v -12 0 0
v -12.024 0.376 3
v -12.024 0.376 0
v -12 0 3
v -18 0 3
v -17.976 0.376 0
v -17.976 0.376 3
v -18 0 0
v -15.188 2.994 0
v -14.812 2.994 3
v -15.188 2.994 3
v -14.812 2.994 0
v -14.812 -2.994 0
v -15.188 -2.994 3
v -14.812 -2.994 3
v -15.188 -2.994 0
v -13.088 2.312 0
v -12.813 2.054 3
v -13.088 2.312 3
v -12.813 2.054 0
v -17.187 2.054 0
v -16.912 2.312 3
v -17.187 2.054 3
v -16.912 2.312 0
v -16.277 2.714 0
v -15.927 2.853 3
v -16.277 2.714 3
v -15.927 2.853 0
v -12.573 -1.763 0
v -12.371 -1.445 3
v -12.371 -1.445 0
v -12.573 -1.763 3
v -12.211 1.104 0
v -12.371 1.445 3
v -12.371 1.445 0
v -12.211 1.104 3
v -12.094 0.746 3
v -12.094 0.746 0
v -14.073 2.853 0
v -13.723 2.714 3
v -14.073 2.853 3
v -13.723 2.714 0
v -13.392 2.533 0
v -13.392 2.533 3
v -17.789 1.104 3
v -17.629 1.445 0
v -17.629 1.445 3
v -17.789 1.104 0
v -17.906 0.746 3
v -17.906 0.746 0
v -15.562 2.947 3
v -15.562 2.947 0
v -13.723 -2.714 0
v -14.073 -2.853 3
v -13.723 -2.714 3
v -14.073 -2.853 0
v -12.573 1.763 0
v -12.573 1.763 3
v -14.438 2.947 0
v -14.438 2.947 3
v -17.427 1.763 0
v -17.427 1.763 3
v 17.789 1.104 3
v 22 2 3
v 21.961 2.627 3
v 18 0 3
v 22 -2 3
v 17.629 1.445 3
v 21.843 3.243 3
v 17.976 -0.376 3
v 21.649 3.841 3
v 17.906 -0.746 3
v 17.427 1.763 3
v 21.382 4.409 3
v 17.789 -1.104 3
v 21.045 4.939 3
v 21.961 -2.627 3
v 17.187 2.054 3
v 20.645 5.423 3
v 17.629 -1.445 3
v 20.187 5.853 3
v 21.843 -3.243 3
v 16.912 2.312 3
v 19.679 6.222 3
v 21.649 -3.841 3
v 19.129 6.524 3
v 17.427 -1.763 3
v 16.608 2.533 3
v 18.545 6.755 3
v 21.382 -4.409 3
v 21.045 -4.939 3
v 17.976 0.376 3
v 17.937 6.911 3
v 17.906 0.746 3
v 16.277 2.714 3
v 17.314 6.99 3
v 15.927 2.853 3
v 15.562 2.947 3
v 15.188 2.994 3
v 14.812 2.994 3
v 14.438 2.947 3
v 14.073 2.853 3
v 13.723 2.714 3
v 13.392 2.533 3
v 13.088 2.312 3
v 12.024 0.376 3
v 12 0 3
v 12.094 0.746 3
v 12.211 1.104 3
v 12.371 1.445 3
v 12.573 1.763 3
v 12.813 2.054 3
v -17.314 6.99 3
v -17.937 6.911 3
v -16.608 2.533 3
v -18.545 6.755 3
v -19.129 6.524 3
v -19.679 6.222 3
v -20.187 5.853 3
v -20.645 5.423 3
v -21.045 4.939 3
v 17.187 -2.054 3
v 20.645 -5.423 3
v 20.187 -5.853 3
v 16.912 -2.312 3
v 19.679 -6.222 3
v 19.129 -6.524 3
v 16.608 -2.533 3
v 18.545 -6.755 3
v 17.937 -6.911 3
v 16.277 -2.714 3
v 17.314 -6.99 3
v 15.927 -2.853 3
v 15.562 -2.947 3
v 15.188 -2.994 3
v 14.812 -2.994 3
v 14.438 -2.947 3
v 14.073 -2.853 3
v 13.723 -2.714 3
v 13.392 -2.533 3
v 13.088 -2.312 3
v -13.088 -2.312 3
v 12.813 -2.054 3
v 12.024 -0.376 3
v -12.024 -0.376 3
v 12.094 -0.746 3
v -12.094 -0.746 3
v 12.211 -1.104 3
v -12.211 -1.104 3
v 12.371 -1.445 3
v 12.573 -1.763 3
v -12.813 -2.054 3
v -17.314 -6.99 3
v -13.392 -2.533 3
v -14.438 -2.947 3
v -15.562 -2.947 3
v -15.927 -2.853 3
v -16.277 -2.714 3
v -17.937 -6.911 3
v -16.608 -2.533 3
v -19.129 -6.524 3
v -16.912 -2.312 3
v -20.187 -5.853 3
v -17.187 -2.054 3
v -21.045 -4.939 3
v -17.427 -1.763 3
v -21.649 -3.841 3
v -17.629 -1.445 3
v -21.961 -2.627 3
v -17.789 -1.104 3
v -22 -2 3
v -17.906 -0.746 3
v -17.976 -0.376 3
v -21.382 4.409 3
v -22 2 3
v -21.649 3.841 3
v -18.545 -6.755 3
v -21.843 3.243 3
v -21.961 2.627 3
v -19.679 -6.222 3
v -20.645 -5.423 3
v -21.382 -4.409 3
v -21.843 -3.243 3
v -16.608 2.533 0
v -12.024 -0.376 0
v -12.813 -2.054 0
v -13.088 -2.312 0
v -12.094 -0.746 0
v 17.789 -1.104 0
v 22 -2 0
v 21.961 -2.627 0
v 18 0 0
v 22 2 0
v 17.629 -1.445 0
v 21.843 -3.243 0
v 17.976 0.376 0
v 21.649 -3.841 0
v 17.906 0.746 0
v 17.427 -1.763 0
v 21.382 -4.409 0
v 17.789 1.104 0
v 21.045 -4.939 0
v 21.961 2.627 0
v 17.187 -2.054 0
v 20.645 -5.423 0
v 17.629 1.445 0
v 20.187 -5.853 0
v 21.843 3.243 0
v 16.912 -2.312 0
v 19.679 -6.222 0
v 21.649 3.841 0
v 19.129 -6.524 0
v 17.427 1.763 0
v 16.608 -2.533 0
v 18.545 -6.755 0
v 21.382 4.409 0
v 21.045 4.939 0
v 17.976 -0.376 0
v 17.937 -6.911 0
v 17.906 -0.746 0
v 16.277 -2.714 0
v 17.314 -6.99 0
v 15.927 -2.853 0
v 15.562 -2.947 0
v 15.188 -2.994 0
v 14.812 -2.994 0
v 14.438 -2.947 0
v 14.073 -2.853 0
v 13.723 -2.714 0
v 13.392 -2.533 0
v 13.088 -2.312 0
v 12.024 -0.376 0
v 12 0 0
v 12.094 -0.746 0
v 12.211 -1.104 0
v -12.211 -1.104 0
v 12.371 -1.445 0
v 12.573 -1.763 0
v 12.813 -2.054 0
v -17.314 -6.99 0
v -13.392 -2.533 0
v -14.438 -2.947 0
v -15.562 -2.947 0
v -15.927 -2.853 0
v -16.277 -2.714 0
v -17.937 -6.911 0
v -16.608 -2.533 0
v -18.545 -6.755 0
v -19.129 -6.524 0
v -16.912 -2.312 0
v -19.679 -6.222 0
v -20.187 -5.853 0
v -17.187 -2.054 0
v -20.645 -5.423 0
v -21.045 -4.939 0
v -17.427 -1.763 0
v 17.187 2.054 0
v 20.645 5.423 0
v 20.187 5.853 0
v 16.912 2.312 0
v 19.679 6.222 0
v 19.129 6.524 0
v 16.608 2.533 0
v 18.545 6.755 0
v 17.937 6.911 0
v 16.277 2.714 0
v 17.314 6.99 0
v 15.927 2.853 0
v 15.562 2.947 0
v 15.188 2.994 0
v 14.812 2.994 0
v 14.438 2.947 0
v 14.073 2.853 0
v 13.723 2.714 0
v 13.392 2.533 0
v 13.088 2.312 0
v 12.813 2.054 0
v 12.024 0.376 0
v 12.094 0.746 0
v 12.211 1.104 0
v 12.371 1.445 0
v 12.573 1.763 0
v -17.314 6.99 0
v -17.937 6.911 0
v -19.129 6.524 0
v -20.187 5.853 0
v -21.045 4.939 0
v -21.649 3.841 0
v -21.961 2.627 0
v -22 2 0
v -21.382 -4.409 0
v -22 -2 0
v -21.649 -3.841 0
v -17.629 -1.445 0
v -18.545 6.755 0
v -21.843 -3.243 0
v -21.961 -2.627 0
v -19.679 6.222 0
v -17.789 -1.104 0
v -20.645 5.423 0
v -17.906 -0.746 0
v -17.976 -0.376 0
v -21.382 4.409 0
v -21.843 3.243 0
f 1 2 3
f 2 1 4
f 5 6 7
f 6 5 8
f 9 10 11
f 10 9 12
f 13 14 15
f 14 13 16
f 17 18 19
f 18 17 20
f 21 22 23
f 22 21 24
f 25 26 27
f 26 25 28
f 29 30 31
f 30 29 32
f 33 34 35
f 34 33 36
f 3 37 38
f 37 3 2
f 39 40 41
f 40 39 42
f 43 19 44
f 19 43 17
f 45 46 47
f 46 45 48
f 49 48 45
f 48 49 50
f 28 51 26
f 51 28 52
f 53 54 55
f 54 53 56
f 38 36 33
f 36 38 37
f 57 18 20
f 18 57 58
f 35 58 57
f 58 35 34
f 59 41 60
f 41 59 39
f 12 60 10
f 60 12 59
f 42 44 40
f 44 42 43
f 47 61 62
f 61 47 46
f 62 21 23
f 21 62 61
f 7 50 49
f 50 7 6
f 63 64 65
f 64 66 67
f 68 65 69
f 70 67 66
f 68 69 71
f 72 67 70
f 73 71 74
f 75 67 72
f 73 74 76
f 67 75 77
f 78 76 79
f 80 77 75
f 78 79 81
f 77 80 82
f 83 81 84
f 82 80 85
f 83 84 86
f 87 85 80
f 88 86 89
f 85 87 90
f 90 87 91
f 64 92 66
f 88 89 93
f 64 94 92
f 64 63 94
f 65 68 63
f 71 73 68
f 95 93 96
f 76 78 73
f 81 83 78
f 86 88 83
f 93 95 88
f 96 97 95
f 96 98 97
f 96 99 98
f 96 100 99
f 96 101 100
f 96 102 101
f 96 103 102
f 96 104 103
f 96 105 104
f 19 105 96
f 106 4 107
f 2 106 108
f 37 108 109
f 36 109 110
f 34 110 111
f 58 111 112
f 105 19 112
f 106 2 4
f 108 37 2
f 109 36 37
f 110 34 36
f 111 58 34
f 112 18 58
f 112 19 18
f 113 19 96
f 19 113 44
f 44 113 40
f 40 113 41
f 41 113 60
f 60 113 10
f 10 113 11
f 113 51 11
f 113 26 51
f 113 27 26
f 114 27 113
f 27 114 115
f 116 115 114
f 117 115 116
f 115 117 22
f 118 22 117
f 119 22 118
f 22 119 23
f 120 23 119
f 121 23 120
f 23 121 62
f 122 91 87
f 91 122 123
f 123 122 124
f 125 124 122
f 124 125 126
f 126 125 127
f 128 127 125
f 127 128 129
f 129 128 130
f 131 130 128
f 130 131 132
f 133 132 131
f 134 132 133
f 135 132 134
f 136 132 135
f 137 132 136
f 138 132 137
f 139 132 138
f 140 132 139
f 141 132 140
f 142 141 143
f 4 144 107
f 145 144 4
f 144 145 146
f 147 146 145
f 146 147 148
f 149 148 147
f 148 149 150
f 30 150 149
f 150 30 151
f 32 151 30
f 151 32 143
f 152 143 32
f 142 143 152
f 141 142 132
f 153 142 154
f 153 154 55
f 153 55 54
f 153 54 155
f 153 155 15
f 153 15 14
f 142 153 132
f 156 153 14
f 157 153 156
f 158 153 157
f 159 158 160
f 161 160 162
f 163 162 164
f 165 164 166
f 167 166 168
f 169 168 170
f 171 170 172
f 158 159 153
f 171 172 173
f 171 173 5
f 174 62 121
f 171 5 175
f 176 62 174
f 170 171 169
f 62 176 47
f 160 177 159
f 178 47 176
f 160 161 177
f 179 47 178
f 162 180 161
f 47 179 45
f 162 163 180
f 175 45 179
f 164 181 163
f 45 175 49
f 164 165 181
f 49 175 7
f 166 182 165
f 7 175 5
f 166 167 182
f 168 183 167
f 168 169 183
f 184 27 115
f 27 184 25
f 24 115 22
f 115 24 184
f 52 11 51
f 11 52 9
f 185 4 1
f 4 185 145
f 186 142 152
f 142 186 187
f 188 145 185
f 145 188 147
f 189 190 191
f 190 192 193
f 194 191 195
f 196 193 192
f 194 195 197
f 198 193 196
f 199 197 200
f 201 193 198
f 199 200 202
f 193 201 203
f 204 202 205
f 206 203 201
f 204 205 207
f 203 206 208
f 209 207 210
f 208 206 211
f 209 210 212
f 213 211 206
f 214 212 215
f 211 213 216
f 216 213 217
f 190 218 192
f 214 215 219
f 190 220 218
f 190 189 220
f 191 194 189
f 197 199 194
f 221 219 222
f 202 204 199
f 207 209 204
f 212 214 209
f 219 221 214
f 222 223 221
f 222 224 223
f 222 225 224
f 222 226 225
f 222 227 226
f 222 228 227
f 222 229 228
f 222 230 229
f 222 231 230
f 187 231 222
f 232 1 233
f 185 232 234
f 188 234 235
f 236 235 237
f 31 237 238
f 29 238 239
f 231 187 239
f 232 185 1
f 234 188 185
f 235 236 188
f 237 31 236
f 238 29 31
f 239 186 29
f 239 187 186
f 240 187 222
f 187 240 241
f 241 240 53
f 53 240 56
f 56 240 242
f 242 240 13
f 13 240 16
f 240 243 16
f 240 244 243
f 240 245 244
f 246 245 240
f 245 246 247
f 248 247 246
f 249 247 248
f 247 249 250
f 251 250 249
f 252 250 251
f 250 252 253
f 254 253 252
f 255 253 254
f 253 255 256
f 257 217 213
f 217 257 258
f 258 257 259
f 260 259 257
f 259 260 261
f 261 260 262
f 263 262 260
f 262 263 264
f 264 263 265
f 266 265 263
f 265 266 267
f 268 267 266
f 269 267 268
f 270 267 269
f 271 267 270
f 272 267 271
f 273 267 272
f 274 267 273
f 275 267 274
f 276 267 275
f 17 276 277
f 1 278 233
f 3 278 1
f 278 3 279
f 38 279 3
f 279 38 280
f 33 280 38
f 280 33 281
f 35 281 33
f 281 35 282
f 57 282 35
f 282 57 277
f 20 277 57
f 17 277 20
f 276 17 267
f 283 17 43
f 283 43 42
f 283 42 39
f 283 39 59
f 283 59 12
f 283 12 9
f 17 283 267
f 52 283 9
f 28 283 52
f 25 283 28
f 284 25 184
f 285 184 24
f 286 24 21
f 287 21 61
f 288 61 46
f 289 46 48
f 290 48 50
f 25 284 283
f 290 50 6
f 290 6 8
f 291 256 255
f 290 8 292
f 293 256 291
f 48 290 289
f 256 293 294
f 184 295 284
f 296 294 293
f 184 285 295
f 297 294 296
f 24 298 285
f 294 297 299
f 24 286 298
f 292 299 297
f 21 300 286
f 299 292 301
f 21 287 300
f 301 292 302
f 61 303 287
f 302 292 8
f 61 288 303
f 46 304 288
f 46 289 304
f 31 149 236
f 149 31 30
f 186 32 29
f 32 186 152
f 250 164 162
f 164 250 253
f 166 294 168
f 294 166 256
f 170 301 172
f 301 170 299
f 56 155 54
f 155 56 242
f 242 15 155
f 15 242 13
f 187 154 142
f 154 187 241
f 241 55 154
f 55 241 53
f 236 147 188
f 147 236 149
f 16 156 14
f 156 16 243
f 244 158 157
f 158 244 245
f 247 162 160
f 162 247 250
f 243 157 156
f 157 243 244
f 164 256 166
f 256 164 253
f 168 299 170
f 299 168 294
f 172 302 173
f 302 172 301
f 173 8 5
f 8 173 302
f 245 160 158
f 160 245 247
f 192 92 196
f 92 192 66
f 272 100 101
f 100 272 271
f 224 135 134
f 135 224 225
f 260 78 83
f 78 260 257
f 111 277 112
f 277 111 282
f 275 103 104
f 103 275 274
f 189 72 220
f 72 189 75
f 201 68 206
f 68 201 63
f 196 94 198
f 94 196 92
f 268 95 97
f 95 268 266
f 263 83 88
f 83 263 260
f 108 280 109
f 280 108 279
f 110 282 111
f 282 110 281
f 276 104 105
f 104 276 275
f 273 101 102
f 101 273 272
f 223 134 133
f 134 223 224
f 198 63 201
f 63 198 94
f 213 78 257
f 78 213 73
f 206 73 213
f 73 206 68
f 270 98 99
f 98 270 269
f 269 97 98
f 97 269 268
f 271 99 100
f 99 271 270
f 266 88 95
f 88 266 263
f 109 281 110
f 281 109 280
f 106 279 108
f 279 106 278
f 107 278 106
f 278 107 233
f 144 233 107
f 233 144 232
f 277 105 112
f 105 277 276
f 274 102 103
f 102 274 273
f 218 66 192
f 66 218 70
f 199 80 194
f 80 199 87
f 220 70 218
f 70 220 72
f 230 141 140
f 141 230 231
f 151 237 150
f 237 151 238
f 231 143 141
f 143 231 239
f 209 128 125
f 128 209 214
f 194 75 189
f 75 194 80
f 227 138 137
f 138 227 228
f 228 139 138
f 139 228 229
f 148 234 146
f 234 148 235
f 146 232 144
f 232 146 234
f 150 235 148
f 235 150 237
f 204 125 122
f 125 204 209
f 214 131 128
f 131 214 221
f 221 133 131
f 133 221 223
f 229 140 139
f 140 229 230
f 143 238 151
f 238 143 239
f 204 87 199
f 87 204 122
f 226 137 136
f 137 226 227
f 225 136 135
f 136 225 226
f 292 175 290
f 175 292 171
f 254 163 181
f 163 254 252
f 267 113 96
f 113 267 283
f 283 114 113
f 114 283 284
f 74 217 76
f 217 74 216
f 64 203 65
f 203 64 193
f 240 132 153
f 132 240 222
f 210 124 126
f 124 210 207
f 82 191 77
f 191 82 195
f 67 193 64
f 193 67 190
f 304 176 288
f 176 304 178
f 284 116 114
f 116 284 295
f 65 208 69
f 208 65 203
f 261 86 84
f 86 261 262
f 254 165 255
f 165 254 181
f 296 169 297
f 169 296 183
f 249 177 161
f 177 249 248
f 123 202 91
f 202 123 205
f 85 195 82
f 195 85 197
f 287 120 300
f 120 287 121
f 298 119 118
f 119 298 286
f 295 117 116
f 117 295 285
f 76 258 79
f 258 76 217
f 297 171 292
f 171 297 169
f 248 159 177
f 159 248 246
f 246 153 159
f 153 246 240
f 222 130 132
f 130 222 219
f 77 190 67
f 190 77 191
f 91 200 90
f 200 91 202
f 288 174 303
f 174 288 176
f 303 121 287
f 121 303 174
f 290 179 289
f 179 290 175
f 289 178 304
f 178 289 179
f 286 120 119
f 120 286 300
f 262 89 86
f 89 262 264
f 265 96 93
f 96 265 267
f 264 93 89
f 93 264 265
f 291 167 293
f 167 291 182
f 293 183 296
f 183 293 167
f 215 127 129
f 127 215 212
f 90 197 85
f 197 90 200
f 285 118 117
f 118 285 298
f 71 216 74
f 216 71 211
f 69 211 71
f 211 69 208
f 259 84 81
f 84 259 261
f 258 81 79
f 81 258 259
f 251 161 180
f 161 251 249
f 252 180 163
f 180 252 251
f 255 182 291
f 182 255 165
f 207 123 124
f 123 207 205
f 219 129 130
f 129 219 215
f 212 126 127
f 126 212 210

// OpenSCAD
$fn = 50;


difference() {
	union() {
		hull() {
			translate(v = [-17.0000000000, 2.0000000000, 0]) {
				cylinder(h = 3, r = 5);
			}
			translate(v = [17.0000000000, 2.0000000000, 0]) {
				cylinder(h = 3, r = 5);
			}
			translate(v = [-17.0000000000, -2.0000000000, 0]) {
				cylinder(h = 3, r = 5);
			}
			translate(v = [17.0000000000, -2.0000000000, 0]) {
				cylinder(h = 3, r = 5);
			}
		}
	}
	union() {
		translate(v = [-15.0000000000, 0.0000000000, 0]) {
			cylinder(h = 3, r = 3.0000000000);
		}
		translate(v = [15.0000000000, 0.0000000000, 0]) {
			cylinder(h = 3, r = 3.0000000000);
		}
		translate(v = [-15.0000000000, 0.0000000000, 0]) {
			cylinder(h = 3, r = 1.5000000000);
		}
		translate(v = [15.0000000000, 0.0000000000, 0]) {
			cylinder(h = 3, r = 1.5000000000);
		}
		translate(v = [-15.0000000000, 0.0000000000, 0]) {
			cylinder(h = 3, r = 1.5000000000);
		}
		translate(v = [15.0000000000, 0.0000000000, 0]) {
			cylinder(h = 3, r = 1.5000000000);
		}
		translate(v = [-15.0000000000, 0.0000000000, 0]) {
			cylinder(h = 3, r = 1.5000000000);
		}
		translate(v = [15.0000000000, 0.0000000000, 0]) {
			cylinder(h = 3, r = 1.5000000000);
		}
	}
}
